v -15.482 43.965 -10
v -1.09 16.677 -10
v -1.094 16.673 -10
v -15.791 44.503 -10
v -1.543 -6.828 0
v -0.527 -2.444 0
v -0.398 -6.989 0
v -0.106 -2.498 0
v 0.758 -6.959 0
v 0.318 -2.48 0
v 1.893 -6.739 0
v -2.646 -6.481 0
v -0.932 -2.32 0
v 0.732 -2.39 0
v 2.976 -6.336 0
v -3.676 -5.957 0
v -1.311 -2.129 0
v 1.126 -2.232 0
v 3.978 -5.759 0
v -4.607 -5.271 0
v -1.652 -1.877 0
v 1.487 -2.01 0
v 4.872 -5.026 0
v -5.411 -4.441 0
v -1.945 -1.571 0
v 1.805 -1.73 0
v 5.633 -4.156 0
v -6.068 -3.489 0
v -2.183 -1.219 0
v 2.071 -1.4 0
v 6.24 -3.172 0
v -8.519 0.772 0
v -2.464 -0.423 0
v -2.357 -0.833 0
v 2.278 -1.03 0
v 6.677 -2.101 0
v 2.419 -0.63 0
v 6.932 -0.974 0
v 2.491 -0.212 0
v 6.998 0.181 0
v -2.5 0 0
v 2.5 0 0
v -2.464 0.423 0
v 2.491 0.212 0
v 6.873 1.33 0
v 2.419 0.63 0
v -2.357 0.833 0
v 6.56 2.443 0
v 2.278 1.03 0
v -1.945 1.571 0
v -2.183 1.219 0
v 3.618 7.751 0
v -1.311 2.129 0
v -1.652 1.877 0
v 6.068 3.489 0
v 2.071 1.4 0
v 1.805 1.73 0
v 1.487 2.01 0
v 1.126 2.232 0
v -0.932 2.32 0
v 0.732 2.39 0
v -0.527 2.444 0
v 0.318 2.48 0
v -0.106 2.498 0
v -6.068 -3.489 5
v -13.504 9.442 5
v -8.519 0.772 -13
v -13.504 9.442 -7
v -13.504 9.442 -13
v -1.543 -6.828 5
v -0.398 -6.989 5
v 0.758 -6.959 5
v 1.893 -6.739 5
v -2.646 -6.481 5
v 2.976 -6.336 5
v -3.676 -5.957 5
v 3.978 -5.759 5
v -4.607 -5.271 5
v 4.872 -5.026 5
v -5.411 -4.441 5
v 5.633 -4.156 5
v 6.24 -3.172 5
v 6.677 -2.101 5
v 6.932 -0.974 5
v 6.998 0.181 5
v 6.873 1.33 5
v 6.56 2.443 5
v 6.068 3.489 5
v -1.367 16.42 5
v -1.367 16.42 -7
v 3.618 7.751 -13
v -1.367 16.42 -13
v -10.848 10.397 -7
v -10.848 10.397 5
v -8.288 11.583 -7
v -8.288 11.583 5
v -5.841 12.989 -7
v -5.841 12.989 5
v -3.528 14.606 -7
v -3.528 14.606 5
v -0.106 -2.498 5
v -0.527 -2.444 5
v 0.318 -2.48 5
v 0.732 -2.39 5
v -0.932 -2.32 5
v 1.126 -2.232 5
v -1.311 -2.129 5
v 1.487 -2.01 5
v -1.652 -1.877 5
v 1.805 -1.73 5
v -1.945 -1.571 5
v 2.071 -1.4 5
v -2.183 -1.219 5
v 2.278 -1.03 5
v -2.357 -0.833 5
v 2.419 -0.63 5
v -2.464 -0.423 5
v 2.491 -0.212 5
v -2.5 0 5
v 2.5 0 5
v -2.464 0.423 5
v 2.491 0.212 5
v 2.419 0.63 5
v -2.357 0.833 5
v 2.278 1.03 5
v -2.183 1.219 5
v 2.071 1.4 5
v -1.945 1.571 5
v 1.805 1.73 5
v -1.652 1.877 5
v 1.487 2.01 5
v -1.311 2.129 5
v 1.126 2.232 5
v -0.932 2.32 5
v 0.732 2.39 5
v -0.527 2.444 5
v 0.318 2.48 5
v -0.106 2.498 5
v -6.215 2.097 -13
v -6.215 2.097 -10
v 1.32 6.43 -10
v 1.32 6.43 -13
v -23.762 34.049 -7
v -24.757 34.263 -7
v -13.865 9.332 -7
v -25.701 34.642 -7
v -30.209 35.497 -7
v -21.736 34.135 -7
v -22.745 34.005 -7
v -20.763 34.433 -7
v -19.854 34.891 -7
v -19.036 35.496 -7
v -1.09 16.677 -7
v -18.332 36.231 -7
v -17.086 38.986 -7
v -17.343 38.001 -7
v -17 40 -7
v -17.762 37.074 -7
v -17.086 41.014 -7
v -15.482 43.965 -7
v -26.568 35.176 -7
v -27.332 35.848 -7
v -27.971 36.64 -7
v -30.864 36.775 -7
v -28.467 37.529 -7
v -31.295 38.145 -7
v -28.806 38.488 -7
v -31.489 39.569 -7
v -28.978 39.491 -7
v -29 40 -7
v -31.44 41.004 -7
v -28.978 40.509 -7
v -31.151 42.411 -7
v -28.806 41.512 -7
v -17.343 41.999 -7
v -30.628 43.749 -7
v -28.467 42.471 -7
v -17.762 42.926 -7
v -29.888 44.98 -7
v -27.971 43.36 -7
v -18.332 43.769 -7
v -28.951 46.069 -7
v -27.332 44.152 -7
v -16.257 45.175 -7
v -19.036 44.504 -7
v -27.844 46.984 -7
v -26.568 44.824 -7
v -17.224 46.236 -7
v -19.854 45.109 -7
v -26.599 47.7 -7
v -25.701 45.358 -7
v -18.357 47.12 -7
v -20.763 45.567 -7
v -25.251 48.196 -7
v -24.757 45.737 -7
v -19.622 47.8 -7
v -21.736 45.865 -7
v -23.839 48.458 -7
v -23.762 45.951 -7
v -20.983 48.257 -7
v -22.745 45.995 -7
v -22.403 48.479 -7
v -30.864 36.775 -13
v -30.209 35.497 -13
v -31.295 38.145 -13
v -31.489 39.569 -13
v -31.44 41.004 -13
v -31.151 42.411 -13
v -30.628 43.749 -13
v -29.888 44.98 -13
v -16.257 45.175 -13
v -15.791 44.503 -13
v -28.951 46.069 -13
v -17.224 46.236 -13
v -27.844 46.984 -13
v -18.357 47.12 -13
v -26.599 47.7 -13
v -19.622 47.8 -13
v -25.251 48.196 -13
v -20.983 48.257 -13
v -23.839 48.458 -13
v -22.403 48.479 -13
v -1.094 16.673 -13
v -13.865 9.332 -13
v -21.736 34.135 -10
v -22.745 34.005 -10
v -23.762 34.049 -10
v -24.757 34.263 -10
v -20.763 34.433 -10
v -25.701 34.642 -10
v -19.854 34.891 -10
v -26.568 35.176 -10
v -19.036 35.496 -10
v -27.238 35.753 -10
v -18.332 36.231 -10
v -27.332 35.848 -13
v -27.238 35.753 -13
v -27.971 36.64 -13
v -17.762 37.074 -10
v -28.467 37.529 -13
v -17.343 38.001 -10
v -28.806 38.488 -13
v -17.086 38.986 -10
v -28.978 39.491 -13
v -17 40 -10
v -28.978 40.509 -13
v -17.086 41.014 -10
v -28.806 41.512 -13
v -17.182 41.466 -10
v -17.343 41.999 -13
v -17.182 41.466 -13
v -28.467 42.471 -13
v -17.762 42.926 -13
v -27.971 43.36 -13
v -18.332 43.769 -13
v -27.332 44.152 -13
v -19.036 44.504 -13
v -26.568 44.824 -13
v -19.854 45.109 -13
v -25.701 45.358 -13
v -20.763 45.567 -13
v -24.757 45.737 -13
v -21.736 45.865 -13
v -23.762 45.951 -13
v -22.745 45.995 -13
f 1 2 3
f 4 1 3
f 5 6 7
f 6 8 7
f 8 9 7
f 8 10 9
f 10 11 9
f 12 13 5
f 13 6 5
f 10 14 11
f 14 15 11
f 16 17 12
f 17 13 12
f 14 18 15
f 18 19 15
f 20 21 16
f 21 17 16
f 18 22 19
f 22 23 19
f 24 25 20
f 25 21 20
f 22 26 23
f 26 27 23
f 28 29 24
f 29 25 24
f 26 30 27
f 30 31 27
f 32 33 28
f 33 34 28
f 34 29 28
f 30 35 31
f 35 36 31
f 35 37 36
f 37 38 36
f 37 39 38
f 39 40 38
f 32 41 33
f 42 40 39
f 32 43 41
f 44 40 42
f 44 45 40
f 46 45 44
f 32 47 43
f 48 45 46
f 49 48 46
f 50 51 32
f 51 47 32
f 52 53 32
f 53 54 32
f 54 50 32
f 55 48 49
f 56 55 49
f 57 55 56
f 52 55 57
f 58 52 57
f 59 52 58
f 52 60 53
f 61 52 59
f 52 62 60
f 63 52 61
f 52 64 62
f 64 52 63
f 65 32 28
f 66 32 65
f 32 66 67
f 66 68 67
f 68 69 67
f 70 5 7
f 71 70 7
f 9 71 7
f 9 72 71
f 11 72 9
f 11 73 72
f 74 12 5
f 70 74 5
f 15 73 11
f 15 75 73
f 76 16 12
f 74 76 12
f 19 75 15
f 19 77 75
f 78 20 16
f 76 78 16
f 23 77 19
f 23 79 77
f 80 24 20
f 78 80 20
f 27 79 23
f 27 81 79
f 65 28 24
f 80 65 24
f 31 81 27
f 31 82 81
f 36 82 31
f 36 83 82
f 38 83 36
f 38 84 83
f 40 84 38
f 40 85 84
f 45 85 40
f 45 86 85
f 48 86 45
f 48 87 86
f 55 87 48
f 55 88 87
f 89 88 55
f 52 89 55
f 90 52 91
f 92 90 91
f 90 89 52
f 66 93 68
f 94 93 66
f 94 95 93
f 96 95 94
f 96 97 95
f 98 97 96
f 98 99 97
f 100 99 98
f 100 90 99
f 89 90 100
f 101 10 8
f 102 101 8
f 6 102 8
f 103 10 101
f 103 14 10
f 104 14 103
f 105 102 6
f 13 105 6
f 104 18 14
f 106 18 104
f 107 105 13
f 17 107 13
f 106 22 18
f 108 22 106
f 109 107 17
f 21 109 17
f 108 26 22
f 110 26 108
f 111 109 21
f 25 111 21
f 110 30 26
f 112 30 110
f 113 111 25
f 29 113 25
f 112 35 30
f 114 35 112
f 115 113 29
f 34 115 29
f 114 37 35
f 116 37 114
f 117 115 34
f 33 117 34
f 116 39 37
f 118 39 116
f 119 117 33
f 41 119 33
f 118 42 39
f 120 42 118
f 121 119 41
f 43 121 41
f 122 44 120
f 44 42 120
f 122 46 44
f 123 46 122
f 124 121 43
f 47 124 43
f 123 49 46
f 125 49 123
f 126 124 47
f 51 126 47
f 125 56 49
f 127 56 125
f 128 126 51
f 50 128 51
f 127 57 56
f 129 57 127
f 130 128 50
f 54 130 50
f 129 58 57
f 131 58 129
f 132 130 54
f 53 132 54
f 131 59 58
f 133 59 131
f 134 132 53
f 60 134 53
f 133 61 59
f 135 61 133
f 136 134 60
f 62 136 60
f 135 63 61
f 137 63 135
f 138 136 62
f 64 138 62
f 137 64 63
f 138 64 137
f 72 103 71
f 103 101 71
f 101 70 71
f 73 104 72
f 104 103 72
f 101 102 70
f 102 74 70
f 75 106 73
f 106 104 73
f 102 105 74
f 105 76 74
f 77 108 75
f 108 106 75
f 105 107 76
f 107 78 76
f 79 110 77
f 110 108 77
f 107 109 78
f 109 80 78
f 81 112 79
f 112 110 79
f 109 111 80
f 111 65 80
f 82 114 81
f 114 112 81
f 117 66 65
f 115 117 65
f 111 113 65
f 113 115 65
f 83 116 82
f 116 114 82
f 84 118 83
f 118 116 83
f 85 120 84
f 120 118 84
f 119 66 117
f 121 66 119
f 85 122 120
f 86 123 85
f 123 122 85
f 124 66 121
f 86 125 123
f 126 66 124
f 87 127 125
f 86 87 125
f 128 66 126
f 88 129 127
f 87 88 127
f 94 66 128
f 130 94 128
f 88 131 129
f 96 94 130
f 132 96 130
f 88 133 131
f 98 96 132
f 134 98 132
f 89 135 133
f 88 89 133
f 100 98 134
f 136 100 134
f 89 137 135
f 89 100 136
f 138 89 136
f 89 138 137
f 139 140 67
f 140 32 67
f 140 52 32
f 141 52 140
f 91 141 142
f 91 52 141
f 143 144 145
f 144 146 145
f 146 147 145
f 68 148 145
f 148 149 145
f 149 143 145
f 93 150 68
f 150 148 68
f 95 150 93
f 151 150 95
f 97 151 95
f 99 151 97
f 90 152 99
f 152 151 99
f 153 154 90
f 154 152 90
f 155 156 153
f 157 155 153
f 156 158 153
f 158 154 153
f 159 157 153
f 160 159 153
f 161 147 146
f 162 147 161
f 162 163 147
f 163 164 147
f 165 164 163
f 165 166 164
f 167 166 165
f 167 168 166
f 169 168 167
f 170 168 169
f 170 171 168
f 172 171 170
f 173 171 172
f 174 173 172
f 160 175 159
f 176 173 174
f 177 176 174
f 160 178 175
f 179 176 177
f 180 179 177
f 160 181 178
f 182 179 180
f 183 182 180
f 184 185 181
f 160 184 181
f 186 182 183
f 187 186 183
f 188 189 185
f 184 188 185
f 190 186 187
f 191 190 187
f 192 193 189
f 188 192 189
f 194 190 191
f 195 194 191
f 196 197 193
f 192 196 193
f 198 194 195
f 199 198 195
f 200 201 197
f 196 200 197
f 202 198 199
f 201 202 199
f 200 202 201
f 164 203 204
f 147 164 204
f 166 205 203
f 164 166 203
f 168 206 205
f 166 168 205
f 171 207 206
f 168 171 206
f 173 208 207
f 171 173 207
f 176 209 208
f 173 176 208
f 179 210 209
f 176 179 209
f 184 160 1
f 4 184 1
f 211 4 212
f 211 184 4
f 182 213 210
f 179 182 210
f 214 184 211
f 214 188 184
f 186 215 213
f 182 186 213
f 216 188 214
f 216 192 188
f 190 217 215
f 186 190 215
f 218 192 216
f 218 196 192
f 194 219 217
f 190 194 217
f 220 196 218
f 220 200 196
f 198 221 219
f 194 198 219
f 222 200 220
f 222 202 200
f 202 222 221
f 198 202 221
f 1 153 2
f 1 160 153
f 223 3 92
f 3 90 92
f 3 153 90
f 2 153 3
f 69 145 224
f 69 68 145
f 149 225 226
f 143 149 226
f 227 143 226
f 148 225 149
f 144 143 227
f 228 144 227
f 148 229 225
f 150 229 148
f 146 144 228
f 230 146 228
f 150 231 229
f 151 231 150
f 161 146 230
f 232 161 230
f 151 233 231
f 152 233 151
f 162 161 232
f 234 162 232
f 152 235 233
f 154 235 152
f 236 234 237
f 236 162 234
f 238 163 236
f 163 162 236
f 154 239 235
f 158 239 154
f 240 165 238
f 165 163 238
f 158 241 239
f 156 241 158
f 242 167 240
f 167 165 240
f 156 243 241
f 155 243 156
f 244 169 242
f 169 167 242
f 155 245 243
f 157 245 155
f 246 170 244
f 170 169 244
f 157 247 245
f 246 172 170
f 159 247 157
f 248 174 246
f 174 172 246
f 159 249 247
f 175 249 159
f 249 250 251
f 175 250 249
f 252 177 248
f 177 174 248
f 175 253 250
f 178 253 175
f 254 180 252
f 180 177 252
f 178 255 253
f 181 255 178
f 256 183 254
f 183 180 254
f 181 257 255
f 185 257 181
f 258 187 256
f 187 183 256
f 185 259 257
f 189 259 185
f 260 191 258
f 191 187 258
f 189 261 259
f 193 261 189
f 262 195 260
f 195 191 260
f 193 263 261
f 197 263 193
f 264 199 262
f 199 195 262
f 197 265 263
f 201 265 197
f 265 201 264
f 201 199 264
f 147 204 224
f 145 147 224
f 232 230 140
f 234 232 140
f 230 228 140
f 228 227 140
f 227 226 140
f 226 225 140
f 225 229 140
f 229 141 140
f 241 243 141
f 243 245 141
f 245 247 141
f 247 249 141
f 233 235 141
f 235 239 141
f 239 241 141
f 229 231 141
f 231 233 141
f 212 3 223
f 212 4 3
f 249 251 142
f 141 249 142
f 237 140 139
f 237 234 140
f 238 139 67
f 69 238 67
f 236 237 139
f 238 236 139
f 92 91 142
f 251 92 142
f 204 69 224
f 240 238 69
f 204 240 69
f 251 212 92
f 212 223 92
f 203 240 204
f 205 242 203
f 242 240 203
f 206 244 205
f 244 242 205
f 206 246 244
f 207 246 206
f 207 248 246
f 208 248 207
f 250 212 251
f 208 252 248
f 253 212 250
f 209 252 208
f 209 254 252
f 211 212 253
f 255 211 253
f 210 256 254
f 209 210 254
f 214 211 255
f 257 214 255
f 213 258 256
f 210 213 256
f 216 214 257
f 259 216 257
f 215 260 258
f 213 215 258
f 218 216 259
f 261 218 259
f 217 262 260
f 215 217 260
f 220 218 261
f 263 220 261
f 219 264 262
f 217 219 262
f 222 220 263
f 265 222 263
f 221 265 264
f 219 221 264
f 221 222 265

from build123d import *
from build123d.topology import SkipClean

# Parameters (mm, degrees)
SKIZZE1_R                       = 2.5
AUFSATZ_LINEAR_AUSTRAGEN1_DEPTH = 5
AUFSATZ_LINEAR_START            = 7
AUFSATZ_LINEAR_AUSTRAGEN2_DEPTH = 7
AUFSATZ_LINEAR_START_2          = 3
SKIZZE3_R                       = 6
AUFSATZ_LINEAR_AUSTRAGEN3_DEPTH = 3
BOSS_EXTRUDE1_START             = 3
BOSS_EXTRUDE1_DEPTH             = 3


with BuildPart() as part:
    # Skizze1 → Aufsatz-Linear austragen1 (new body)
    with BuildSketch(Plane.XY):
        with BuildLine():
            ThreePointArc((-6.068344121, -3.48929787), (3.48929787, -6.068344121), (6.068344121, 3.48929787))
            Line((6.068344121, 3.48929787), (-1.366900012, 16.420157233))
            ThreePointArc((-1.366900012, 16.420157233), (-7.048924024, 12.258998302), (-13.503588255, 9.441561493))
            Line((-13.503588255, 9.441561493), (-6.068344121, -3.48929787))
        make_face()
        Circle(SKIZZE1_R, mode=Mode.SUBTRACT)
    extrude(amount=AUFSATZ_LINEAR_AUSTRAGEN1_DEPTH)

    # Skizze2 → Aufsatz-Linear austragen2 (add)
    with BuildSketch(Plane(origin=(0, 0, 0), x_dir=(-1, 0, 0), z_dir=(0, 0, -1)).offset(AUFSATZ_LINEAR_START)):
        with BuildLine():
            Line((8.518877013, 0.772498463), (13.503588255, 9.441561493))
            ThreePointArc((13.503588255, 9.441561493), (7.048924023, 12.258998302), (1.366900012, 16.420157232))
            Line((1.366900012, 16.420157233), (-3.61781123, 7.751094202))
            Line((-3.61781123, 7.751094202), (8.518877013, 0.772498463))
        make_face()
    extrude(amount=-AUFSATZ_LINEAR_AUSTRAGEN2_DEPTH)

    # Skizze3 → Aufsatz-Linear austragen3 (add)
    with BuildSketch(Plane(origin=(0, 0, -7), x_dir=(-1, 0, 0), z_dir=(0, 0, -1)).offset(AUFSATZ_LINEAR_START_2)):
        with BuildLine():
            Line((1.366900012, 16.420157233), (-3.61781123, 7.751094202))
            Line((-3.61781123, 7.751094202), (8.518877013, 0.772498463))
            Line((8.518877013, 0.772498463), (13.503588255, 9.441561493))
            ThreePointArc((13.503588255, 9.441561493), (13.684230172, 9.386009203), (13.865197027, 9.331524742))
            Line((13.865197027, 9.331524742), (30.209148043, 35.496869479))
            ThreePointArc((30.209148043, 35.496869479), (27.237004556, 47.368703576), (15.481560492, 43.965232321))
            Line((15.481560492, 43.965232321), (1.089891738, 16.677325284))
            ThreePointArc((1.089891738, 16.677325284), (1.228016167, 16.548332256), (1.366900012, 16.420157233))
        make_face()
        with Locations((23, 40)):
            Circle(SKIZZE3_R, mode=Mode.SUBTRACT)
    extrude(amount=-AUFSATZ_LINEAR_AUSTRAGEN3_DEPTH)

    # Sketch1 → Boss-Extrude1 (add)
    with SkipClean():  # the faces are left unmerged after this step: merging them gives an invalid solid
        with BuildSketch(Plane(origin=(0, 0, -10), x_dir=(-1, 0, 0), z_dir=(0, 0, -1)).offset(BOSS_EXTRUDE1_START)):
            with BuildLine():
                ThreePointArc((24.687363033, 31.669165348), (27.842500084, 33.014286512), (30.209148043, 35.496869479))
                Line((30.209148043, 35.496869479), (28.088810383, 36.821319632))
                ThreePointArc((28.088810383, 36.821319632), (27.694055373, 36.262909667), (27.238322861, 35.753045877))
                Line((27.238322861, 35.753045877), (24.687363033, 31.669165348))
            make_face()
            with BuildLine():
                Line((13.865197027, 9.331524742), (30.209148043, 35.496869479))
                ThreePointArc((30.209148043, 35.496869479), (27.842500084, 33.014286512), (24.687363033, 31.669165348))
                Line((24.687363033, 31.669165348), (6.215378123, 2.097010324))
                Line((6.215378123, 2.097010324), (8.518877013, 0.772498463))
                Line((8.518877013, 0.772498463), (13.503588255, 9.441561493))
                ThreePointArc((13.503588255, 9.441561493), (13.684230172, 9.386009203), (13.865197027, 9.331524742))
            make_face()
            with BuildLine():
                Line((28.088810383, 36.821319632), (30.209148043, 35.496869479))
                ThreePointArc((30.209148043, 35.496869479), (31.170916667, 37.657753041), (31.5, 40))
                ThreePointArc((31.5, 40), (25.342246959, 48.170916667), (15.790851957, 44.503130521))
                Line((15.790851957, 44.503130521), (17.911189617, 43.178680368))
                ThreePointArc((17.911189617, 43.178680368), (24.653350795, 45.767705883), (29, 40))
                ThreePointArc((29, 40), (28.767705883, 38.346649205), (28.088810383, 36.821319632))
            make_face()
            with BuildLine():
                Line((17.911189617, 43.178680368), (15.790851957, 44.503130521))
                Line((15.790851957, 44.503130521), (15.216048877, 43.414689578))
                ThreePointArc((15.216048877, 43.414689578), (14.507527777, 40.35765281), (14.956507243, 37.25186895))
                Line((14.956507243, 37.25186895), (17.181735723, 41.465537717))
                ThreePointArc((17.181735723, 41.465537717), (17.479602927, 42.350577834), (17.911189617, 43.178680368))
            make_face()
            with BuildLine():
                Line((-1.32040378, 6.430084919), (14.956507243, 37.25186895))
                ThreePointArc((14.956507243, 37.25186895), (14.507527777, 40.35765281), (15.216048877, 43.414689578))
                Line((15.216048877, 43.414689578), (1.094048415, 16.673421058))
                ThreePointArc((1.094048415, 16.673421058), (1.230105912, 16.546392359), (1.366900012, 16.420157233))
                Line((1.366900012, 16.420157233), (-3.61781123, 7.751094202))
                Line((-3.61781123, 7.751094202), (-1.32040378, 6.430084919))
            make_face()
        extrude(amount=-BOSS_EXTRUDE1_DEPTH)


solid = part.part
